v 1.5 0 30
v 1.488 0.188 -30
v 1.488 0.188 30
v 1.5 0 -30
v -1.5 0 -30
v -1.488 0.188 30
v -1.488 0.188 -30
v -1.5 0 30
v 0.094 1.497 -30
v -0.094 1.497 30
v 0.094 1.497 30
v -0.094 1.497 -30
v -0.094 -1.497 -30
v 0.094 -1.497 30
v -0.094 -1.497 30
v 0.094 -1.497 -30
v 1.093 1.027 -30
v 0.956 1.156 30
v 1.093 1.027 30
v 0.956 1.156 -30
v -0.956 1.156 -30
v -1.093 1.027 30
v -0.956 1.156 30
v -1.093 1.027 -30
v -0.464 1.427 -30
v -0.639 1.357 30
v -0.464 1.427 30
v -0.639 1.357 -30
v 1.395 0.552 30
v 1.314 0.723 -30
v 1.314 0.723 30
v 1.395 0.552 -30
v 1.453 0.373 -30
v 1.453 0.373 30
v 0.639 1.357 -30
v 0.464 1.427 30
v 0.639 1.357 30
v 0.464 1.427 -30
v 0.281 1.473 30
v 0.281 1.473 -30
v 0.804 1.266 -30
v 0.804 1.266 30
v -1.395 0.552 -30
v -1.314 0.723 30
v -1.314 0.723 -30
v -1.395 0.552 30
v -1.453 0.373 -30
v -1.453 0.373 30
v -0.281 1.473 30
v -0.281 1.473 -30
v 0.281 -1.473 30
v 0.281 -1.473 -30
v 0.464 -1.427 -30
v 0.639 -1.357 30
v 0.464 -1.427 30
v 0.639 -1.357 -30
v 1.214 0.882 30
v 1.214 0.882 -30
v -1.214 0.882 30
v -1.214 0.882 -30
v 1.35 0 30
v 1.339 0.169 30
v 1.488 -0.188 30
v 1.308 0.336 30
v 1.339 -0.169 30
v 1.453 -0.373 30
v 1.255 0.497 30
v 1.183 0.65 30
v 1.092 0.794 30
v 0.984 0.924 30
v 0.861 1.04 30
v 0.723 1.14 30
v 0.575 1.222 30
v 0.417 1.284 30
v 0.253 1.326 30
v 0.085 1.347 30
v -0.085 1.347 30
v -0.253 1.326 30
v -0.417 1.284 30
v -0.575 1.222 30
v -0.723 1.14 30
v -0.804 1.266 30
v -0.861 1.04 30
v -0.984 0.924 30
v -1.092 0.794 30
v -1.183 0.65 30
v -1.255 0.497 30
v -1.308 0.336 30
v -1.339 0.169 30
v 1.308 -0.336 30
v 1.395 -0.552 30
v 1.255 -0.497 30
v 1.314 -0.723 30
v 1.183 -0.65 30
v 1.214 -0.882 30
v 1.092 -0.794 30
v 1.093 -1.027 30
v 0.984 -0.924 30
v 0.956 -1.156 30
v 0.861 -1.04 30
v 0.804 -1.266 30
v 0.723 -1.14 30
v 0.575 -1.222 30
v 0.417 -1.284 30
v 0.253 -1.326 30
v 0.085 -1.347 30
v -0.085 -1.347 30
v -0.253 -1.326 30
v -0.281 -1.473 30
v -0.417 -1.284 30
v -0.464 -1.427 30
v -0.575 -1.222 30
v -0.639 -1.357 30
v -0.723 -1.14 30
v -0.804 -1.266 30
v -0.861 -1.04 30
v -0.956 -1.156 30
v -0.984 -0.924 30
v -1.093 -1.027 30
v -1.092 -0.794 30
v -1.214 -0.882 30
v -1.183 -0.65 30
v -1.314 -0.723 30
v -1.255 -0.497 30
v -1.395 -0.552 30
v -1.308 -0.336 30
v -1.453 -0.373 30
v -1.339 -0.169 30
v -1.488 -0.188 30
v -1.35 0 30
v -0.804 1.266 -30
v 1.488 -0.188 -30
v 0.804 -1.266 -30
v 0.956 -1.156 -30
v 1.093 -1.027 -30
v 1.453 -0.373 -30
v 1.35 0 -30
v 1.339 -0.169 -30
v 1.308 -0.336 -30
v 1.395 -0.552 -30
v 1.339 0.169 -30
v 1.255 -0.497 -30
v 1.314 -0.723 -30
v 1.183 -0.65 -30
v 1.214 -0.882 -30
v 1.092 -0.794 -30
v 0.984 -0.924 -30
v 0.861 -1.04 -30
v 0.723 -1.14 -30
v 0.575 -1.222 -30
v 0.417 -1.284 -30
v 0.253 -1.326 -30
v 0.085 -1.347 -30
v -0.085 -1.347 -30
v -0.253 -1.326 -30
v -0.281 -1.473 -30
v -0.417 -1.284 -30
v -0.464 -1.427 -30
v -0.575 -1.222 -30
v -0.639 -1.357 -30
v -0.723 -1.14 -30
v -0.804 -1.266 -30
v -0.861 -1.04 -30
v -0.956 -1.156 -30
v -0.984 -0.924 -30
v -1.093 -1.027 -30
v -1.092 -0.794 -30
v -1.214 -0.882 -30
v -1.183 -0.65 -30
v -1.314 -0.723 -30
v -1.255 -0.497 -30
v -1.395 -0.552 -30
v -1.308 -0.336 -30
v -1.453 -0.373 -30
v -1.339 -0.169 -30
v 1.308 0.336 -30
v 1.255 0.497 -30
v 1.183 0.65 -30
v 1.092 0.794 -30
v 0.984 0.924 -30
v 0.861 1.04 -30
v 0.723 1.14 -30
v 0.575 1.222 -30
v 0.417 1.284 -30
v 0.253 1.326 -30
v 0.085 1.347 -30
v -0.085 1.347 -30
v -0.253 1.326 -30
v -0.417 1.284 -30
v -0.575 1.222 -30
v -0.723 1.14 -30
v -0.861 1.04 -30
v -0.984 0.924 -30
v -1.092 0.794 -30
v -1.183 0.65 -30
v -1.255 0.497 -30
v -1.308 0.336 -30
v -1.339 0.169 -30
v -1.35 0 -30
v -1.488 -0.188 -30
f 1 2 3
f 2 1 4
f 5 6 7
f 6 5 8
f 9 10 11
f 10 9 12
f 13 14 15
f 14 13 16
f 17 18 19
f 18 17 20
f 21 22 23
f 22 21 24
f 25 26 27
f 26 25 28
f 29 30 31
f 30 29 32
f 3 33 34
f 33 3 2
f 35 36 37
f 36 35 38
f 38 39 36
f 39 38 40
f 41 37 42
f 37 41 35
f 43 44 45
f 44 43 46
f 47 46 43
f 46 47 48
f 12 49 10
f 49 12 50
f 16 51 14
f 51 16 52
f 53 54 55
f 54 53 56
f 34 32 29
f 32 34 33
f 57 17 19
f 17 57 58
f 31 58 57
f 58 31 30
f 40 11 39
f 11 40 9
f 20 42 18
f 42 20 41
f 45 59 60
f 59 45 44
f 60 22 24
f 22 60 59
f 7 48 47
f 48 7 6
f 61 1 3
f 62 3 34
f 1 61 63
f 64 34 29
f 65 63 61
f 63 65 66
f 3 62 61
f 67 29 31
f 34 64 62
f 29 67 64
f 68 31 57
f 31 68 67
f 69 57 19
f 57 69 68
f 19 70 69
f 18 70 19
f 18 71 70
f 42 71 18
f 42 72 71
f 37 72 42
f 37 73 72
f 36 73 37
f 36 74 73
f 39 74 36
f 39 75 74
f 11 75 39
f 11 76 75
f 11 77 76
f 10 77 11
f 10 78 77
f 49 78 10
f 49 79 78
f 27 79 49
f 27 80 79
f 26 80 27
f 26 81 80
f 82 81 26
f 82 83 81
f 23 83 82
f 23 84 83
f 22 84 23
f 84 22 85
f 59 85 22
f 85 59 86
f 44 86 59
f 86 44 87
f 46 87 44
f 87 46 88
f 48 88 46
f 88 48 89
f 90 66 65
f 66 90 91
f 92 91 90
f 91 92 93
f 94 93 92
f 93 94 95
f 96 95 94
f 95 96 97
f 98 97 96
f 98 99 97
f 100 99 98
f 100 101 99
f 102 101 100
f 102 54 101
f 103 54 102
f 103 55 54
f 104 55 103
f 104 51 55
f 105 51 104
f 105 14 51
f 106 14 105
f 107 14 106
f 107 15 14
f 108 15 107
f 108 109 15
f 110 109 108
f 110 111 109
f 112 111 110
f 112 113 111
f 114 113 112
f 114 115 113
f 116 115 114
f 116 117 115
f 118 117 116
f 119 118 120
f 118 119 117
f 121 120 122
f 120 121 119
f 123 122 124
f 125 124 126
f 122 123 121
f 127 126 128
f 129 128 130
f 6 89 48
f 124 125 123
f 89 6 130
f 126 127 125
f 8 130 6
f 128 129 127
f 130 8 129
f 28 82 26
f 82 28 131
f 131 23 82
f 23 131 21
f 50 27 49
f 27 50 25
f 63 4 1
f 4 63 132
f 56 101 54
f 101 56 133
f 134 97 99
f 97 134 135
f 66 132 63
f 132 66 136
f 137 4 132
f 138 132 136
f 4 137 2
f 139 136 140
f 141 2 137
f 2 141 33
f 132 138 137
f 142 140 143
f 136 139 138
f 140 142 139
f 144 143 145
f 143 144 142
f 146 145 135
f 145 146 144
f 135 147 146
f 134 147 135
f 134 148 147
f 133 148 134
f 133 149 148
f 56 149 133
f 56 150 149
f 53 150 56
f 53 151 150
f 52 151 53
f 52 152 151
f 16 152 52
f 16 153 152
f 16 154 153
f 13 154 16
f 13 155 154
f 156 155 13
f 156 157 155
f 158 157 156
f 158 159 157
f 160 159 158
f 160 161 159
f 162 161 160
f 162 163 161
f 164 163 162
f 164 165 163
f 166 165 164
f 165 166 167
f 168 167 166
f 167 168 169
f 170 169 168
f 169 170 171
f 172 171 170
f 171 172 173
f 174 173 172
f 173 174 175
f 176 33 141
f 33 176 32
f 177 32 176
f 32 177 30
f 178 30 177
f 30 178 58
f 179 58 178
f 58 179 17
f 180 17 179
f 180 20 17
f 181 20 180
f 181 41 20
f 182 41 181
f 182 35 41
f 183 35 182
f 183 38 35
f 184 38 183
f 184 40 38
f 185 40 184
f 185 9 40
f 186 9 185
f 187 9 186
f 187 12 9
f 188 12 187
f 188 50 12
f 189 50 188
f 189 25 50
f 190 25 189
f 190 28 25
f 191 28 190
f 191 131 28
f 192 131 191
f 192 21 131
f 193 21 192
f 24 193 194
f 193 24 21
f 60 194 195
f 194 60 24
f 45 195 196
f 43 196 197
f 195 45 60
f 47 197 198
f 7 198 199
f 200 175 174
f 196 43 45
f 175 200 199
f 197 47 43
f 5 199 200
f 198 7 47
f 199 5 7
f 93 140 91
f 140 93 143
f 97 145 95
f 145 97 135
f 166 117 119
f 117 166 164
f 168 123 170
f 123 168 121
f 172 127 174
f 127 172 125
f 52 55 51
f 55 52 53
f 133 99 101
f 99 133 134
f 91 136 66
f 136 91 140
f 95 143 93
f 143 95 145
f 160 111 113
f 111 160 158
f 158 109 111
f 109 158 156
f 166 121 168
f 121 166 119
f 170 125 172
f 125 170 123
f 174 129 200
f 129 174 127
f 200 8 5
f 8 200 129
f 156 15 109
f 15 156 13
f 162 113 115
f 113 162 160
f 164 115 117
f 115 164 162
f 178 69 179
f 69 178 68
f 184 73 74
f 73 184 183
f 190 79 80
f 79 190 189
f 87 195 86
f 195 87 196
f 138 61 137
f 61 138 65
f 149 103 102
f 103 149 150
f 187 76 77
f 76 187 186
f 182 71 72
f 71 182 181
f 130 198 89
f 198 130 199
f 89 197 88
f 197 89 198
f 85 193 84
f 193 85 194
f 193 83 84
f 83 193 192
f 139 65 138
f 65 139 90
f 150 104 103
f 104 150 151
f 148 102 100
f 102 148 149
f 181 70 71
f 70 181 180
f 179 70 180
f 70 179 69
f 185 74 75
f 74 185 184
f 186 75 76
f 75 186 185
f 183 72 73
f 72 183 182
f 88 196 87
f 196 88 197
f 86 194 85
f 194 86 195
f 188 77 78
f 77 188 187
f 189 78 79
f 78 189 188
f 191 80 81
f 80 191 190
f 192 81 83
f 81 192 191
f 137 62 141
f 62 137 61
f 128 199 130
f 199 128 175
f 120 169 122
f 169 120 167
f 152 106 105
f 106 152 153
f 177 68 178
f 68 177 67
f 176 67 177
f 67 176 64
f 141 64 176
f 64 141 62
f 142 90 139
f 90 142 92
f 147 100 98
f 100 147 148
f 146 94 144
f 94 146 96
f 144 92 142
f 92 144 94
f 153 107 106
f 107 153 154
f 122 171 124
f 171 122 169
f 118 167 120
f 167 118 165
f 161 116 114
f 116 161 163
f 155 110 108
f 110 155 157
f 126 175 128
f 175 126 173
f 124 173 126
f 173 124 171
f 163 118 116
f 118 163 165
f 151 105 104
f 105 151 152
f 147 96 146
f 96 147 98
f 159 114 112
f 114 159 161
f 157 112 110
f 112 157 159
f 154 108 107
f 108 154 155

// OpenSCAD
$fn = 50;


difference() {
	union() {
		translate(v = [0, 0, -30.0000000000]) {
			cylinder(h = 60, r = 1.5000000000);
		}
	}
	union() {
		translate(v = [0, 0, -100.0000000000]) {
			cylinder(h = 200, r = 1.3500000000);
		}
	}
}
